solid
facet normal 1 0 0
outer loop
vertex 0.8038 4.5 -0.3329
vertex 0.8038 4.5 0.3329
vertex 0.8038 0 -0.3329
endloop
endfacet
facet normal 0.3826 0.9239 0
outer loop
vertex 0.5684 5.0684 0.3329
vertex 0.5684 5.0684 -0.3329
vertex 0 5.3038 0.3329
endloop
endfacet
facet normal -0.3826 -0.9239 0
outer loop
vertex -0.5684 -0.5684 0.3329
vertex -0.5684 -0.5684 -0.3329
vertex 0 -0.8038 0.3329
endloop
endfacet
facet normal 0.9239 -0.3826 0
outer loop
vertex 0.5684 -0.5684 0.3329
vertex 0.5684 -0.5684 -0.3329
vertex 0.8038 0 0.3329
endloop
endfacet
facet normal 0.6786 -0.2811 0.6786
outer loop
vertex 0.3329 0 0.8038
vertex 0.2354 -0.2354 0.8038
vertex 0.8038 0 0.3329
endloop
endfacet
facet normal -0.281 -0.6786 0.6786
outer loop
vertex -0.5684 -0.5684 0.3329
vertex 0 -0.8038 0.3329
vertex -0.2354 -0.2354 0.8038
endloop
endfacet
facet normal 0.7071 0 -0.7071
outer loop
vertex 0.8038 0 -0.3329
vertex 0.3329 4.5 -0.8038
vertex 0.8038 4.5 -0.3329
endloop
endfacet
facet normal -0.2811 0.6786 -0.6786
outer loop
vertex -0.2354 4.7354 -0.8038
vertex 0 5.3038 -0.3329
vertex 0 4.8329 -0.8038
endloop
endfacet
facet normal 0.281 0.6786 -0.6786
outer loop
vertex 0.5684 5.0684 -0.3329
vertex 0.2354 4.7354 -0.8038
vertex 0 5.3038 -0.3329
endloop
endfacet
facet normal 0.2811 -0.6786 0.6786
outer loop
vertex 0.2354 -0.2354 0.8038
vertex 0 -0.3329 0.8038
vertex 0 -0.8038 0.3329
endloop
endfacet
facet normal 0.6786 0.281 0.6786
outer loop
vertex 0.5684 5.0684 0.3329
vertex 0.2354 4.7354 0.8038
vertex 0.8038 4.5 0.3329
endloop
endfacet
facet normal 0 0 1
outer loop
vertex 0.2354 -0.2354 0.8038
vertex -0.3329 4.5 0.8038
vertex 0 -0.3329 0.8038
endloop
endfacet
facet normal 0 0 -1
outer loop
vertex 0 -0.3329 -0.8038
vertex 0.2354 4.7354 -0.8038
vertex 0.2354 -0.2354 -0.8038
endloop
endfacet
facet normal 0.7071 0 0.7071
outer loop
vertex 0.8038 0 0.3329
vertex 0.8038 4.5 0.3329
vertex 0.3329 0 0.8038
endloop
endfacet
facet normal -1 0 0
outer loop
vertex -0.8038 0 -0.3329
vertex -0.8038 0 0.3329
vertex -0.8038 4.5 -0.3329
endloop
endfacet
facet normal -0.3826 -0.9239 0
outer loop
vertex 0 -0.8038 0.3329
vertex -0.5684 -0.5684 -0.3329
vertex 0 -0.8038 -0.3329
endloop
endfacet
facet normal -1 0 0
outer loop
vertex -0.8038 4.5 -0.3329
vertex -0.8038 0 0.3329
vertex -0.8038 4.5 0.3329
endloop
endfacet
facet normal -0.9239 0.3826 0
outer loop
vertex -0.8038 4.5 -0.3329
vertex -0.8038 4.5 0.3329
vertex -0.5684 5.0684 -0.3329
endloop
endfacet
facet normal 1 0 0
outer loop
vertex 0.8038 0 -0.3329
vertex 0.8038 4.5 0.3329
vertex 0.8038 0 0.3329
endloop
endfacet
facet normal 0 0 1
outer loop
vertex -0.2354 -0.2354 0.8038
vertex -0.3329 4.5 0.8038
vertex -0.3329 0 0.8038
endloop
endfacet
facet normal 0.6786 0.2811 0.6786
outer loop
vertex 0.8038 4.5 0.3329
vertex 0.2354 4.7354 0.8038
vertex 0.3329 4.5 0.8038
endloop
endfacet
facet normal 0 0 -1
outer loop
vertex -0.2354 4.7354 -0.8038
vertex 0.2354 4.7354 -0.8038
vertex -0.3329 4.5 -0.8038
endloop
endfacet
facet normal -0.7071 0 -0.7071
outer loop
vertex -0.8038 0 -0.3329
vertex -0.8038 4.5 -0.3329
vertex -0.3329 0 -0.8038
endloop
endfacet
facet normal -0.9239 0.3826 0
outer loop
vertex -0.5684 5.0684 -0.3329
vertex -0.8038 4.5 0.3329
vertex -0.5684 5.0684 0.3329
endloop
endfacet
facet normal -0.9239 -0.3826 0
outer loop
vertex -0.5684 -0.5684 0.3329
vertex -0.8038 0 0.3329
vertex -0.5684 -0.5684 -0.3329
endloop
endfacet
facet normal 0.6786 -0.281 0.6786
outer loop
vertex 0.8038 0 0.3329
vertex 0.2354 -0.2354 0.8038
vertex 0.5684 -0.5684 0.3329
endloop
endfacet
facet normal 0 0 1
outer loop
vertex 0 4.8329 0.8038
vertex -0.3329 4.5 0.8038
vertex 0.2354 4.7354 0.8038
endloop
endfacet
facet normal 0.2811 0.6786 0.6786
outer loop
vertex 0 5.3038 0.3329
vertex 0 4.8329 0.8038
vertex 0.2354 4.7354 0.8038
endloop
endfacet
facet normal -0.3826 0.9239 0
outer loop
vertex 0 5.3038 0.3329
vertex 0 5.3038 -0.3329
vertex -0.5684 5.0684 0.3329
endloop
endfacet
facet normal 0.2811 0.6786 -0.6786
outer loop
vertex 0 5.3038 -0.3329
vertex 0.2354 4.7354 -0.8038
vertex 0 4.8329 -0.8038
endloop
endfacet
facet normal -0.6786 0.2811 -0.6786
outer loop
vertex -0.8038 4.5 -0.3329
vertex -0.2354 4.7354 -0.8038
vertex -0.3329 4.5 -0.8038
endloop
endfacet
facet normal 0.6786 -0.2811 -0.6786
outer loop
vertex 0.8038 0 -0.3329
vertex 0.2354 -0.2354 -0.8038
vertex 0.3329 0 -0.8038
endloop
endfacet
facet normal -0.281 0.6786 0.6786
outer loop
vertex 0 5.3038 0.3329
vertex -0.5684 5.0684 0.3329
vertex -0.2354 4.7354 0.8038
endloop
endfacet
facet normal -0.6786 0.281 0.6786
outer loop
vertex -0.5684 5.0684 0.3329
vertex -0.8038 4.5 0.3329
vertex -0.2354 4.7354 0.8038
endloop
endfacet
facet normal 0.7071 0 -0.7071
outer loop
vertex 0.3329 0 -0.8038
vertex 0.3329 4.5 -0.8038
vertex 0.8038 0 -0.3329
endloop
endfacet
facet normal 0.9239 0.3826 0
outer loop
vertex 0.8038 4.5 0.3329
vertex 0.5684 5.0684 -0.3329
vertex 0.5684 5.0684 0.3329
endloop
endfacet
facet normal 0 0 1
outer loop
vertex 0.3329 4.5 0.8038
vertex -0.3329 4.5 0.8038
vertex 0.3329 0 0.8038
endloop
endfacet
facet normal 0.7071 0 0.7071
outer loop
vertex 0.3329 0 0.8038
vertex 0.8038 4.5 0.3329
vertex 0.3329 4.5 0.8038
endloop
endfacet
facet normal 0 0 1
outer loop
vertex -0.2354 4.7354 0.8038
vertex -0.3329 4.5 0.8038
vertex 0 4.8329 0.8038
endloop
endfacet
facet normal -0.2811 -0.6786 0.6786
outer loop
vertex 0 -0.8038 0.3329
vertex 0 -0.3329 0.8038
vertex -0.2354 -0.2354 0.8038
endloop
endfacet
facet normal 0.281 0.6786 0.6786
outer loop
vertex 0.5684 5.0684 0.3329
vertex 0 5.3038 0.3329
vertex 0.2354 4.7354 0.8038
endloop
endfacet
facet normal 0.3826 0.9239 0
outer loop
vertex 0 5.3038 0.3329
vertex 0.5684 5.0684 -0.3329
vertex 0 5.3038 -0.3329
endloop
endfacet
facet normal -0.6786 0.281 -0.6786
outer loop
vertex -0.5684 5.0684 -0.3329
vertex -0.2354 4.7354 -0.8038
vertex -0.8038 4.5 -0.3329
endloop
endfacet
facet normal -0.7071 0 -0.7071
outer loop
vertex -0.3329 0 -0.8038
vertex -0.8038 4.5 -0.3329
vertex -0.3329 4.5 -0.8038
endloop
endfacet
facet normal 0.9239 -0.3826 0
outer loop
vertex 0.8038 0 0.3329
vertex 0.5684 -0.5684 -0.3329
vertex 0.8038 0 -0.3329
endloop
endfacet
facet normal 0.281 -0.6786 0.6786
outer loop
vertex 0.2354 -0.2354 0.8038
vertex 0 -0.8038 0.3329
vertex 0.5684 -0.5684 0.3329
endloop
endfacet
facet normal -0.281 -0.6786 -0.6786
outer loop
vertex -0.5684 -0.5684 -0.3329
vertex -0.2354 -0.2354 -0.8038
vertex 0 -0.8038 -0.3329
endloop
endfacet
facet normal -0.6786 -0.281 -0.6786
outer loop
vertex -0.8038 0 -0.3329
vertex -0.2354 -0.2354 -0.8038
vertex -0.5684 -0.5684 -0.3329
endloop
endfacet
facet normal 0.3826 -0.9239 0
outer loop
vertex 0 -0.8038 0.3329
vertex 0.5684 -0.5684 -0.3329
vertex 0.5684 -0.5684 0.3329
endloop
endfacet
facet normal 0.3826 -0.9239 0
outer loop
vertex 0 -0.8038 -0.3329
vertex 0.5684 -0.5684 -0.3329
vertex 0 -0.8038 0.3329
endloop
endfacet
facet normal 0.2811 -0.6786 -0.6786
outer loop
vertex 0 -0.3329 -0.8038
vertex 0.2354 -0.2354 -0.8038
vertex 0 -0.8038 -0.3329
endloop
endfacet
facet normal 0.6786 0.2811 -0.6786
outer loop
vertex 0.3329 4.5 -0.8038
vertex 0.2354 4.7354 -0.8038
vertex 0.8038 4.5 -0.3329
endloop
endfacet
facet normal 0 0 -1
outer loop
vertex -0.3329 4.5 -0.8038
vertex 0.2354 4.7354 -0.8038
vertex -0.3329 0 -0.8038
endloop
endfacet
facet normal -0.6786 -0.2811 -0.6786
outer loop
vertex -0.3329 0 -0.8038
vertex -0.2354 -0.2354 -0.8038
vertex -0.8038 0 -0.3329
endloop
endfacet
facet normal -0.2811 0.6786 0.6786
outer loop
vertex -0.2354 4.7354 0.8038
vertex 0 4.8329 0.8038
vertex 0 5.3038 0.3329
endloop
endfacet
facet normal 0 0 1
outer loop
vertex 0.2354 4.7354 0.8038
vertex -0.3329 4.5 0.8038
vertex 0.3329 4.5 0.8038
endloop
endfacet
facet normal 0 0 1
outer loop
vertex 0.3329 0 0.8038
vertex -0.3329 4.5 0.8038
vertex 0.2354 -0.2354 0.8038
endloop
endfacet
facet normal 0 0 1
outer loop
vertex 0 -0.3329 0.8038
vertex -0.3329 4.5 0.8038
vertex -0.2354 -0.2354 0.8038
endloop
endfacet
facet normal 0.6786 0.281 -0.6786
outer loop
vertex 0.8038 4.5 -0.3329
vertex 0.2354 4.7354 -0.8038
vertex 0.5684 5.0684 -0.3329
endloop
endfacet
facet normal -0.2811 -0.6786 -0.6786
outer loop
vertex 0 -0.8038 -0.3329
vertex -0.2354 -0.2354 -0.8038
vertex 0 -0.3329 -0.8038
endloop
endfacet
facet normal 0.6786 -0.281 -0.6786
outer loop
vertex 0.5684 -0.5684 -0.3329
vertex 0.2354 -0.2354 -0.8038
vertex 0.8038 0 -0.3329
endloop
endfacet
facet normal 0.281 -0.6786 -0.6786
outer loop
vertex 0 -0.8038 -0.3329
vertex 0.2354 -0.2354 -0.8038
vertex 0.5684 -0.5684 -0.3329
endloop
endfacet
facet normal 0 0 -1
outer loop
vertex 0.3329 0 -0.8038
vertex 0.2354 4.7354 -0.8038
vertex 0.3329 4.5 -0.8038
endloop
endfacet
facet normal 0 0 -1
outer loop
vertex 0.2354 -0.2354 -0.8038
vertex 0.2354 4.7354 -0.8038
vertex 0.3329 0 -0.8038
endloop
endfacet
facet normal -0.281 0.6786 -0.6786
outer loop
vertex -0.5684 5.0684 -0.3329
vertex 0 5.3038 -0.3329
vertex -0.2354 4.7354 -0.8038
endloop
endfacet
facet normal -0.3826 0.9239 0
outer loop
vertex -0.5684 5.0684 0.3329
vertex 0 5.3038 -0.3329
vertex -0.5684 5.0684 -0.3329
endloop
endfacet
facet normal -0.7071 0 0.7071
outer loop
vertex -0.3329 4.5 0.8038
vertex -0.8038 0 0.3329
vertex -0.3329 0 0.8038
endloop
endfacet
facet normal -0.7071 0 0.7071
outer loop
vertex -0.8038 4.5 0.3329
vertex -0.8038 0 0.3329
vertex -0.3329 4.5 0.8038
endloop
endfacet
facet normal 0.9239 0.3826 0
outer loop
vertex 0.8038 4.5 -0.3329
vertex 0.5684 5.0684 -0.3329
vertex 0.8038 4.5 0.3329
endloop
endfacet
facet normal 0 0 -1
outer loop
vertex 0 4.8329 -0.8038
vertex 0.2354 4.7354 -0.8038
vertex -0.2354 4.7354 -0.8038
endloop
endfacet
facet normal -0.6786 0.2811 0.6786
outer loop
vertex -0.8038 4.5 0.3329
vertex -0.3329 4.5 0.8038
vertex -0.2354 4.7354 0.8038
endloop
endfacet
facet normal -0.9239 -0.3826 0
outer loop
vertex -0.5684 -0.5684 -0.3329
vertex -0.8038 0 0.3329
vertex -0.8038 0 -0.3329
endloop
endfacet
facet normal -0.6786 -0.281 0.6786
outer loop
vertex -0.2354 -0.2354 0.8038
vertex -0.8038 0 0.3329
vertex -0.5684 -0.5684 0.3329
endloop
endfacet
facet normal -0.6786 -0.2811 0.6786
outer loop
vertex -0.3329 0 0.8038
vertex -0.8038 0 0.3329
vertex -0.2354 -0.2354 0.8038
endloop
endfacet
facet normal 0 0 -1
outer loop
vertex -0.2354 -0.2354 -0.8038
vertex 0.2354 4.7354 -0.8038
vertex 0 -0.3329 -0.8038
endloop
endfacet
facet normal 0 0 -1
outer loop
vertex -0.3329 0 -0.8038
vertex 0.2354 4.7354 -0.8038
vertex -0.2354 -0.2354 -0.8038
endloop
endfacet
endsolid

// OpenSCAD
module rod(a, b, r) {
        hull() {
            translate(a) sphere(r,$fn=8);
            translate(b) sphere(r,$fn=8);
        }
    }

rod([0,0,0],[0,4.5,0],0.87);
